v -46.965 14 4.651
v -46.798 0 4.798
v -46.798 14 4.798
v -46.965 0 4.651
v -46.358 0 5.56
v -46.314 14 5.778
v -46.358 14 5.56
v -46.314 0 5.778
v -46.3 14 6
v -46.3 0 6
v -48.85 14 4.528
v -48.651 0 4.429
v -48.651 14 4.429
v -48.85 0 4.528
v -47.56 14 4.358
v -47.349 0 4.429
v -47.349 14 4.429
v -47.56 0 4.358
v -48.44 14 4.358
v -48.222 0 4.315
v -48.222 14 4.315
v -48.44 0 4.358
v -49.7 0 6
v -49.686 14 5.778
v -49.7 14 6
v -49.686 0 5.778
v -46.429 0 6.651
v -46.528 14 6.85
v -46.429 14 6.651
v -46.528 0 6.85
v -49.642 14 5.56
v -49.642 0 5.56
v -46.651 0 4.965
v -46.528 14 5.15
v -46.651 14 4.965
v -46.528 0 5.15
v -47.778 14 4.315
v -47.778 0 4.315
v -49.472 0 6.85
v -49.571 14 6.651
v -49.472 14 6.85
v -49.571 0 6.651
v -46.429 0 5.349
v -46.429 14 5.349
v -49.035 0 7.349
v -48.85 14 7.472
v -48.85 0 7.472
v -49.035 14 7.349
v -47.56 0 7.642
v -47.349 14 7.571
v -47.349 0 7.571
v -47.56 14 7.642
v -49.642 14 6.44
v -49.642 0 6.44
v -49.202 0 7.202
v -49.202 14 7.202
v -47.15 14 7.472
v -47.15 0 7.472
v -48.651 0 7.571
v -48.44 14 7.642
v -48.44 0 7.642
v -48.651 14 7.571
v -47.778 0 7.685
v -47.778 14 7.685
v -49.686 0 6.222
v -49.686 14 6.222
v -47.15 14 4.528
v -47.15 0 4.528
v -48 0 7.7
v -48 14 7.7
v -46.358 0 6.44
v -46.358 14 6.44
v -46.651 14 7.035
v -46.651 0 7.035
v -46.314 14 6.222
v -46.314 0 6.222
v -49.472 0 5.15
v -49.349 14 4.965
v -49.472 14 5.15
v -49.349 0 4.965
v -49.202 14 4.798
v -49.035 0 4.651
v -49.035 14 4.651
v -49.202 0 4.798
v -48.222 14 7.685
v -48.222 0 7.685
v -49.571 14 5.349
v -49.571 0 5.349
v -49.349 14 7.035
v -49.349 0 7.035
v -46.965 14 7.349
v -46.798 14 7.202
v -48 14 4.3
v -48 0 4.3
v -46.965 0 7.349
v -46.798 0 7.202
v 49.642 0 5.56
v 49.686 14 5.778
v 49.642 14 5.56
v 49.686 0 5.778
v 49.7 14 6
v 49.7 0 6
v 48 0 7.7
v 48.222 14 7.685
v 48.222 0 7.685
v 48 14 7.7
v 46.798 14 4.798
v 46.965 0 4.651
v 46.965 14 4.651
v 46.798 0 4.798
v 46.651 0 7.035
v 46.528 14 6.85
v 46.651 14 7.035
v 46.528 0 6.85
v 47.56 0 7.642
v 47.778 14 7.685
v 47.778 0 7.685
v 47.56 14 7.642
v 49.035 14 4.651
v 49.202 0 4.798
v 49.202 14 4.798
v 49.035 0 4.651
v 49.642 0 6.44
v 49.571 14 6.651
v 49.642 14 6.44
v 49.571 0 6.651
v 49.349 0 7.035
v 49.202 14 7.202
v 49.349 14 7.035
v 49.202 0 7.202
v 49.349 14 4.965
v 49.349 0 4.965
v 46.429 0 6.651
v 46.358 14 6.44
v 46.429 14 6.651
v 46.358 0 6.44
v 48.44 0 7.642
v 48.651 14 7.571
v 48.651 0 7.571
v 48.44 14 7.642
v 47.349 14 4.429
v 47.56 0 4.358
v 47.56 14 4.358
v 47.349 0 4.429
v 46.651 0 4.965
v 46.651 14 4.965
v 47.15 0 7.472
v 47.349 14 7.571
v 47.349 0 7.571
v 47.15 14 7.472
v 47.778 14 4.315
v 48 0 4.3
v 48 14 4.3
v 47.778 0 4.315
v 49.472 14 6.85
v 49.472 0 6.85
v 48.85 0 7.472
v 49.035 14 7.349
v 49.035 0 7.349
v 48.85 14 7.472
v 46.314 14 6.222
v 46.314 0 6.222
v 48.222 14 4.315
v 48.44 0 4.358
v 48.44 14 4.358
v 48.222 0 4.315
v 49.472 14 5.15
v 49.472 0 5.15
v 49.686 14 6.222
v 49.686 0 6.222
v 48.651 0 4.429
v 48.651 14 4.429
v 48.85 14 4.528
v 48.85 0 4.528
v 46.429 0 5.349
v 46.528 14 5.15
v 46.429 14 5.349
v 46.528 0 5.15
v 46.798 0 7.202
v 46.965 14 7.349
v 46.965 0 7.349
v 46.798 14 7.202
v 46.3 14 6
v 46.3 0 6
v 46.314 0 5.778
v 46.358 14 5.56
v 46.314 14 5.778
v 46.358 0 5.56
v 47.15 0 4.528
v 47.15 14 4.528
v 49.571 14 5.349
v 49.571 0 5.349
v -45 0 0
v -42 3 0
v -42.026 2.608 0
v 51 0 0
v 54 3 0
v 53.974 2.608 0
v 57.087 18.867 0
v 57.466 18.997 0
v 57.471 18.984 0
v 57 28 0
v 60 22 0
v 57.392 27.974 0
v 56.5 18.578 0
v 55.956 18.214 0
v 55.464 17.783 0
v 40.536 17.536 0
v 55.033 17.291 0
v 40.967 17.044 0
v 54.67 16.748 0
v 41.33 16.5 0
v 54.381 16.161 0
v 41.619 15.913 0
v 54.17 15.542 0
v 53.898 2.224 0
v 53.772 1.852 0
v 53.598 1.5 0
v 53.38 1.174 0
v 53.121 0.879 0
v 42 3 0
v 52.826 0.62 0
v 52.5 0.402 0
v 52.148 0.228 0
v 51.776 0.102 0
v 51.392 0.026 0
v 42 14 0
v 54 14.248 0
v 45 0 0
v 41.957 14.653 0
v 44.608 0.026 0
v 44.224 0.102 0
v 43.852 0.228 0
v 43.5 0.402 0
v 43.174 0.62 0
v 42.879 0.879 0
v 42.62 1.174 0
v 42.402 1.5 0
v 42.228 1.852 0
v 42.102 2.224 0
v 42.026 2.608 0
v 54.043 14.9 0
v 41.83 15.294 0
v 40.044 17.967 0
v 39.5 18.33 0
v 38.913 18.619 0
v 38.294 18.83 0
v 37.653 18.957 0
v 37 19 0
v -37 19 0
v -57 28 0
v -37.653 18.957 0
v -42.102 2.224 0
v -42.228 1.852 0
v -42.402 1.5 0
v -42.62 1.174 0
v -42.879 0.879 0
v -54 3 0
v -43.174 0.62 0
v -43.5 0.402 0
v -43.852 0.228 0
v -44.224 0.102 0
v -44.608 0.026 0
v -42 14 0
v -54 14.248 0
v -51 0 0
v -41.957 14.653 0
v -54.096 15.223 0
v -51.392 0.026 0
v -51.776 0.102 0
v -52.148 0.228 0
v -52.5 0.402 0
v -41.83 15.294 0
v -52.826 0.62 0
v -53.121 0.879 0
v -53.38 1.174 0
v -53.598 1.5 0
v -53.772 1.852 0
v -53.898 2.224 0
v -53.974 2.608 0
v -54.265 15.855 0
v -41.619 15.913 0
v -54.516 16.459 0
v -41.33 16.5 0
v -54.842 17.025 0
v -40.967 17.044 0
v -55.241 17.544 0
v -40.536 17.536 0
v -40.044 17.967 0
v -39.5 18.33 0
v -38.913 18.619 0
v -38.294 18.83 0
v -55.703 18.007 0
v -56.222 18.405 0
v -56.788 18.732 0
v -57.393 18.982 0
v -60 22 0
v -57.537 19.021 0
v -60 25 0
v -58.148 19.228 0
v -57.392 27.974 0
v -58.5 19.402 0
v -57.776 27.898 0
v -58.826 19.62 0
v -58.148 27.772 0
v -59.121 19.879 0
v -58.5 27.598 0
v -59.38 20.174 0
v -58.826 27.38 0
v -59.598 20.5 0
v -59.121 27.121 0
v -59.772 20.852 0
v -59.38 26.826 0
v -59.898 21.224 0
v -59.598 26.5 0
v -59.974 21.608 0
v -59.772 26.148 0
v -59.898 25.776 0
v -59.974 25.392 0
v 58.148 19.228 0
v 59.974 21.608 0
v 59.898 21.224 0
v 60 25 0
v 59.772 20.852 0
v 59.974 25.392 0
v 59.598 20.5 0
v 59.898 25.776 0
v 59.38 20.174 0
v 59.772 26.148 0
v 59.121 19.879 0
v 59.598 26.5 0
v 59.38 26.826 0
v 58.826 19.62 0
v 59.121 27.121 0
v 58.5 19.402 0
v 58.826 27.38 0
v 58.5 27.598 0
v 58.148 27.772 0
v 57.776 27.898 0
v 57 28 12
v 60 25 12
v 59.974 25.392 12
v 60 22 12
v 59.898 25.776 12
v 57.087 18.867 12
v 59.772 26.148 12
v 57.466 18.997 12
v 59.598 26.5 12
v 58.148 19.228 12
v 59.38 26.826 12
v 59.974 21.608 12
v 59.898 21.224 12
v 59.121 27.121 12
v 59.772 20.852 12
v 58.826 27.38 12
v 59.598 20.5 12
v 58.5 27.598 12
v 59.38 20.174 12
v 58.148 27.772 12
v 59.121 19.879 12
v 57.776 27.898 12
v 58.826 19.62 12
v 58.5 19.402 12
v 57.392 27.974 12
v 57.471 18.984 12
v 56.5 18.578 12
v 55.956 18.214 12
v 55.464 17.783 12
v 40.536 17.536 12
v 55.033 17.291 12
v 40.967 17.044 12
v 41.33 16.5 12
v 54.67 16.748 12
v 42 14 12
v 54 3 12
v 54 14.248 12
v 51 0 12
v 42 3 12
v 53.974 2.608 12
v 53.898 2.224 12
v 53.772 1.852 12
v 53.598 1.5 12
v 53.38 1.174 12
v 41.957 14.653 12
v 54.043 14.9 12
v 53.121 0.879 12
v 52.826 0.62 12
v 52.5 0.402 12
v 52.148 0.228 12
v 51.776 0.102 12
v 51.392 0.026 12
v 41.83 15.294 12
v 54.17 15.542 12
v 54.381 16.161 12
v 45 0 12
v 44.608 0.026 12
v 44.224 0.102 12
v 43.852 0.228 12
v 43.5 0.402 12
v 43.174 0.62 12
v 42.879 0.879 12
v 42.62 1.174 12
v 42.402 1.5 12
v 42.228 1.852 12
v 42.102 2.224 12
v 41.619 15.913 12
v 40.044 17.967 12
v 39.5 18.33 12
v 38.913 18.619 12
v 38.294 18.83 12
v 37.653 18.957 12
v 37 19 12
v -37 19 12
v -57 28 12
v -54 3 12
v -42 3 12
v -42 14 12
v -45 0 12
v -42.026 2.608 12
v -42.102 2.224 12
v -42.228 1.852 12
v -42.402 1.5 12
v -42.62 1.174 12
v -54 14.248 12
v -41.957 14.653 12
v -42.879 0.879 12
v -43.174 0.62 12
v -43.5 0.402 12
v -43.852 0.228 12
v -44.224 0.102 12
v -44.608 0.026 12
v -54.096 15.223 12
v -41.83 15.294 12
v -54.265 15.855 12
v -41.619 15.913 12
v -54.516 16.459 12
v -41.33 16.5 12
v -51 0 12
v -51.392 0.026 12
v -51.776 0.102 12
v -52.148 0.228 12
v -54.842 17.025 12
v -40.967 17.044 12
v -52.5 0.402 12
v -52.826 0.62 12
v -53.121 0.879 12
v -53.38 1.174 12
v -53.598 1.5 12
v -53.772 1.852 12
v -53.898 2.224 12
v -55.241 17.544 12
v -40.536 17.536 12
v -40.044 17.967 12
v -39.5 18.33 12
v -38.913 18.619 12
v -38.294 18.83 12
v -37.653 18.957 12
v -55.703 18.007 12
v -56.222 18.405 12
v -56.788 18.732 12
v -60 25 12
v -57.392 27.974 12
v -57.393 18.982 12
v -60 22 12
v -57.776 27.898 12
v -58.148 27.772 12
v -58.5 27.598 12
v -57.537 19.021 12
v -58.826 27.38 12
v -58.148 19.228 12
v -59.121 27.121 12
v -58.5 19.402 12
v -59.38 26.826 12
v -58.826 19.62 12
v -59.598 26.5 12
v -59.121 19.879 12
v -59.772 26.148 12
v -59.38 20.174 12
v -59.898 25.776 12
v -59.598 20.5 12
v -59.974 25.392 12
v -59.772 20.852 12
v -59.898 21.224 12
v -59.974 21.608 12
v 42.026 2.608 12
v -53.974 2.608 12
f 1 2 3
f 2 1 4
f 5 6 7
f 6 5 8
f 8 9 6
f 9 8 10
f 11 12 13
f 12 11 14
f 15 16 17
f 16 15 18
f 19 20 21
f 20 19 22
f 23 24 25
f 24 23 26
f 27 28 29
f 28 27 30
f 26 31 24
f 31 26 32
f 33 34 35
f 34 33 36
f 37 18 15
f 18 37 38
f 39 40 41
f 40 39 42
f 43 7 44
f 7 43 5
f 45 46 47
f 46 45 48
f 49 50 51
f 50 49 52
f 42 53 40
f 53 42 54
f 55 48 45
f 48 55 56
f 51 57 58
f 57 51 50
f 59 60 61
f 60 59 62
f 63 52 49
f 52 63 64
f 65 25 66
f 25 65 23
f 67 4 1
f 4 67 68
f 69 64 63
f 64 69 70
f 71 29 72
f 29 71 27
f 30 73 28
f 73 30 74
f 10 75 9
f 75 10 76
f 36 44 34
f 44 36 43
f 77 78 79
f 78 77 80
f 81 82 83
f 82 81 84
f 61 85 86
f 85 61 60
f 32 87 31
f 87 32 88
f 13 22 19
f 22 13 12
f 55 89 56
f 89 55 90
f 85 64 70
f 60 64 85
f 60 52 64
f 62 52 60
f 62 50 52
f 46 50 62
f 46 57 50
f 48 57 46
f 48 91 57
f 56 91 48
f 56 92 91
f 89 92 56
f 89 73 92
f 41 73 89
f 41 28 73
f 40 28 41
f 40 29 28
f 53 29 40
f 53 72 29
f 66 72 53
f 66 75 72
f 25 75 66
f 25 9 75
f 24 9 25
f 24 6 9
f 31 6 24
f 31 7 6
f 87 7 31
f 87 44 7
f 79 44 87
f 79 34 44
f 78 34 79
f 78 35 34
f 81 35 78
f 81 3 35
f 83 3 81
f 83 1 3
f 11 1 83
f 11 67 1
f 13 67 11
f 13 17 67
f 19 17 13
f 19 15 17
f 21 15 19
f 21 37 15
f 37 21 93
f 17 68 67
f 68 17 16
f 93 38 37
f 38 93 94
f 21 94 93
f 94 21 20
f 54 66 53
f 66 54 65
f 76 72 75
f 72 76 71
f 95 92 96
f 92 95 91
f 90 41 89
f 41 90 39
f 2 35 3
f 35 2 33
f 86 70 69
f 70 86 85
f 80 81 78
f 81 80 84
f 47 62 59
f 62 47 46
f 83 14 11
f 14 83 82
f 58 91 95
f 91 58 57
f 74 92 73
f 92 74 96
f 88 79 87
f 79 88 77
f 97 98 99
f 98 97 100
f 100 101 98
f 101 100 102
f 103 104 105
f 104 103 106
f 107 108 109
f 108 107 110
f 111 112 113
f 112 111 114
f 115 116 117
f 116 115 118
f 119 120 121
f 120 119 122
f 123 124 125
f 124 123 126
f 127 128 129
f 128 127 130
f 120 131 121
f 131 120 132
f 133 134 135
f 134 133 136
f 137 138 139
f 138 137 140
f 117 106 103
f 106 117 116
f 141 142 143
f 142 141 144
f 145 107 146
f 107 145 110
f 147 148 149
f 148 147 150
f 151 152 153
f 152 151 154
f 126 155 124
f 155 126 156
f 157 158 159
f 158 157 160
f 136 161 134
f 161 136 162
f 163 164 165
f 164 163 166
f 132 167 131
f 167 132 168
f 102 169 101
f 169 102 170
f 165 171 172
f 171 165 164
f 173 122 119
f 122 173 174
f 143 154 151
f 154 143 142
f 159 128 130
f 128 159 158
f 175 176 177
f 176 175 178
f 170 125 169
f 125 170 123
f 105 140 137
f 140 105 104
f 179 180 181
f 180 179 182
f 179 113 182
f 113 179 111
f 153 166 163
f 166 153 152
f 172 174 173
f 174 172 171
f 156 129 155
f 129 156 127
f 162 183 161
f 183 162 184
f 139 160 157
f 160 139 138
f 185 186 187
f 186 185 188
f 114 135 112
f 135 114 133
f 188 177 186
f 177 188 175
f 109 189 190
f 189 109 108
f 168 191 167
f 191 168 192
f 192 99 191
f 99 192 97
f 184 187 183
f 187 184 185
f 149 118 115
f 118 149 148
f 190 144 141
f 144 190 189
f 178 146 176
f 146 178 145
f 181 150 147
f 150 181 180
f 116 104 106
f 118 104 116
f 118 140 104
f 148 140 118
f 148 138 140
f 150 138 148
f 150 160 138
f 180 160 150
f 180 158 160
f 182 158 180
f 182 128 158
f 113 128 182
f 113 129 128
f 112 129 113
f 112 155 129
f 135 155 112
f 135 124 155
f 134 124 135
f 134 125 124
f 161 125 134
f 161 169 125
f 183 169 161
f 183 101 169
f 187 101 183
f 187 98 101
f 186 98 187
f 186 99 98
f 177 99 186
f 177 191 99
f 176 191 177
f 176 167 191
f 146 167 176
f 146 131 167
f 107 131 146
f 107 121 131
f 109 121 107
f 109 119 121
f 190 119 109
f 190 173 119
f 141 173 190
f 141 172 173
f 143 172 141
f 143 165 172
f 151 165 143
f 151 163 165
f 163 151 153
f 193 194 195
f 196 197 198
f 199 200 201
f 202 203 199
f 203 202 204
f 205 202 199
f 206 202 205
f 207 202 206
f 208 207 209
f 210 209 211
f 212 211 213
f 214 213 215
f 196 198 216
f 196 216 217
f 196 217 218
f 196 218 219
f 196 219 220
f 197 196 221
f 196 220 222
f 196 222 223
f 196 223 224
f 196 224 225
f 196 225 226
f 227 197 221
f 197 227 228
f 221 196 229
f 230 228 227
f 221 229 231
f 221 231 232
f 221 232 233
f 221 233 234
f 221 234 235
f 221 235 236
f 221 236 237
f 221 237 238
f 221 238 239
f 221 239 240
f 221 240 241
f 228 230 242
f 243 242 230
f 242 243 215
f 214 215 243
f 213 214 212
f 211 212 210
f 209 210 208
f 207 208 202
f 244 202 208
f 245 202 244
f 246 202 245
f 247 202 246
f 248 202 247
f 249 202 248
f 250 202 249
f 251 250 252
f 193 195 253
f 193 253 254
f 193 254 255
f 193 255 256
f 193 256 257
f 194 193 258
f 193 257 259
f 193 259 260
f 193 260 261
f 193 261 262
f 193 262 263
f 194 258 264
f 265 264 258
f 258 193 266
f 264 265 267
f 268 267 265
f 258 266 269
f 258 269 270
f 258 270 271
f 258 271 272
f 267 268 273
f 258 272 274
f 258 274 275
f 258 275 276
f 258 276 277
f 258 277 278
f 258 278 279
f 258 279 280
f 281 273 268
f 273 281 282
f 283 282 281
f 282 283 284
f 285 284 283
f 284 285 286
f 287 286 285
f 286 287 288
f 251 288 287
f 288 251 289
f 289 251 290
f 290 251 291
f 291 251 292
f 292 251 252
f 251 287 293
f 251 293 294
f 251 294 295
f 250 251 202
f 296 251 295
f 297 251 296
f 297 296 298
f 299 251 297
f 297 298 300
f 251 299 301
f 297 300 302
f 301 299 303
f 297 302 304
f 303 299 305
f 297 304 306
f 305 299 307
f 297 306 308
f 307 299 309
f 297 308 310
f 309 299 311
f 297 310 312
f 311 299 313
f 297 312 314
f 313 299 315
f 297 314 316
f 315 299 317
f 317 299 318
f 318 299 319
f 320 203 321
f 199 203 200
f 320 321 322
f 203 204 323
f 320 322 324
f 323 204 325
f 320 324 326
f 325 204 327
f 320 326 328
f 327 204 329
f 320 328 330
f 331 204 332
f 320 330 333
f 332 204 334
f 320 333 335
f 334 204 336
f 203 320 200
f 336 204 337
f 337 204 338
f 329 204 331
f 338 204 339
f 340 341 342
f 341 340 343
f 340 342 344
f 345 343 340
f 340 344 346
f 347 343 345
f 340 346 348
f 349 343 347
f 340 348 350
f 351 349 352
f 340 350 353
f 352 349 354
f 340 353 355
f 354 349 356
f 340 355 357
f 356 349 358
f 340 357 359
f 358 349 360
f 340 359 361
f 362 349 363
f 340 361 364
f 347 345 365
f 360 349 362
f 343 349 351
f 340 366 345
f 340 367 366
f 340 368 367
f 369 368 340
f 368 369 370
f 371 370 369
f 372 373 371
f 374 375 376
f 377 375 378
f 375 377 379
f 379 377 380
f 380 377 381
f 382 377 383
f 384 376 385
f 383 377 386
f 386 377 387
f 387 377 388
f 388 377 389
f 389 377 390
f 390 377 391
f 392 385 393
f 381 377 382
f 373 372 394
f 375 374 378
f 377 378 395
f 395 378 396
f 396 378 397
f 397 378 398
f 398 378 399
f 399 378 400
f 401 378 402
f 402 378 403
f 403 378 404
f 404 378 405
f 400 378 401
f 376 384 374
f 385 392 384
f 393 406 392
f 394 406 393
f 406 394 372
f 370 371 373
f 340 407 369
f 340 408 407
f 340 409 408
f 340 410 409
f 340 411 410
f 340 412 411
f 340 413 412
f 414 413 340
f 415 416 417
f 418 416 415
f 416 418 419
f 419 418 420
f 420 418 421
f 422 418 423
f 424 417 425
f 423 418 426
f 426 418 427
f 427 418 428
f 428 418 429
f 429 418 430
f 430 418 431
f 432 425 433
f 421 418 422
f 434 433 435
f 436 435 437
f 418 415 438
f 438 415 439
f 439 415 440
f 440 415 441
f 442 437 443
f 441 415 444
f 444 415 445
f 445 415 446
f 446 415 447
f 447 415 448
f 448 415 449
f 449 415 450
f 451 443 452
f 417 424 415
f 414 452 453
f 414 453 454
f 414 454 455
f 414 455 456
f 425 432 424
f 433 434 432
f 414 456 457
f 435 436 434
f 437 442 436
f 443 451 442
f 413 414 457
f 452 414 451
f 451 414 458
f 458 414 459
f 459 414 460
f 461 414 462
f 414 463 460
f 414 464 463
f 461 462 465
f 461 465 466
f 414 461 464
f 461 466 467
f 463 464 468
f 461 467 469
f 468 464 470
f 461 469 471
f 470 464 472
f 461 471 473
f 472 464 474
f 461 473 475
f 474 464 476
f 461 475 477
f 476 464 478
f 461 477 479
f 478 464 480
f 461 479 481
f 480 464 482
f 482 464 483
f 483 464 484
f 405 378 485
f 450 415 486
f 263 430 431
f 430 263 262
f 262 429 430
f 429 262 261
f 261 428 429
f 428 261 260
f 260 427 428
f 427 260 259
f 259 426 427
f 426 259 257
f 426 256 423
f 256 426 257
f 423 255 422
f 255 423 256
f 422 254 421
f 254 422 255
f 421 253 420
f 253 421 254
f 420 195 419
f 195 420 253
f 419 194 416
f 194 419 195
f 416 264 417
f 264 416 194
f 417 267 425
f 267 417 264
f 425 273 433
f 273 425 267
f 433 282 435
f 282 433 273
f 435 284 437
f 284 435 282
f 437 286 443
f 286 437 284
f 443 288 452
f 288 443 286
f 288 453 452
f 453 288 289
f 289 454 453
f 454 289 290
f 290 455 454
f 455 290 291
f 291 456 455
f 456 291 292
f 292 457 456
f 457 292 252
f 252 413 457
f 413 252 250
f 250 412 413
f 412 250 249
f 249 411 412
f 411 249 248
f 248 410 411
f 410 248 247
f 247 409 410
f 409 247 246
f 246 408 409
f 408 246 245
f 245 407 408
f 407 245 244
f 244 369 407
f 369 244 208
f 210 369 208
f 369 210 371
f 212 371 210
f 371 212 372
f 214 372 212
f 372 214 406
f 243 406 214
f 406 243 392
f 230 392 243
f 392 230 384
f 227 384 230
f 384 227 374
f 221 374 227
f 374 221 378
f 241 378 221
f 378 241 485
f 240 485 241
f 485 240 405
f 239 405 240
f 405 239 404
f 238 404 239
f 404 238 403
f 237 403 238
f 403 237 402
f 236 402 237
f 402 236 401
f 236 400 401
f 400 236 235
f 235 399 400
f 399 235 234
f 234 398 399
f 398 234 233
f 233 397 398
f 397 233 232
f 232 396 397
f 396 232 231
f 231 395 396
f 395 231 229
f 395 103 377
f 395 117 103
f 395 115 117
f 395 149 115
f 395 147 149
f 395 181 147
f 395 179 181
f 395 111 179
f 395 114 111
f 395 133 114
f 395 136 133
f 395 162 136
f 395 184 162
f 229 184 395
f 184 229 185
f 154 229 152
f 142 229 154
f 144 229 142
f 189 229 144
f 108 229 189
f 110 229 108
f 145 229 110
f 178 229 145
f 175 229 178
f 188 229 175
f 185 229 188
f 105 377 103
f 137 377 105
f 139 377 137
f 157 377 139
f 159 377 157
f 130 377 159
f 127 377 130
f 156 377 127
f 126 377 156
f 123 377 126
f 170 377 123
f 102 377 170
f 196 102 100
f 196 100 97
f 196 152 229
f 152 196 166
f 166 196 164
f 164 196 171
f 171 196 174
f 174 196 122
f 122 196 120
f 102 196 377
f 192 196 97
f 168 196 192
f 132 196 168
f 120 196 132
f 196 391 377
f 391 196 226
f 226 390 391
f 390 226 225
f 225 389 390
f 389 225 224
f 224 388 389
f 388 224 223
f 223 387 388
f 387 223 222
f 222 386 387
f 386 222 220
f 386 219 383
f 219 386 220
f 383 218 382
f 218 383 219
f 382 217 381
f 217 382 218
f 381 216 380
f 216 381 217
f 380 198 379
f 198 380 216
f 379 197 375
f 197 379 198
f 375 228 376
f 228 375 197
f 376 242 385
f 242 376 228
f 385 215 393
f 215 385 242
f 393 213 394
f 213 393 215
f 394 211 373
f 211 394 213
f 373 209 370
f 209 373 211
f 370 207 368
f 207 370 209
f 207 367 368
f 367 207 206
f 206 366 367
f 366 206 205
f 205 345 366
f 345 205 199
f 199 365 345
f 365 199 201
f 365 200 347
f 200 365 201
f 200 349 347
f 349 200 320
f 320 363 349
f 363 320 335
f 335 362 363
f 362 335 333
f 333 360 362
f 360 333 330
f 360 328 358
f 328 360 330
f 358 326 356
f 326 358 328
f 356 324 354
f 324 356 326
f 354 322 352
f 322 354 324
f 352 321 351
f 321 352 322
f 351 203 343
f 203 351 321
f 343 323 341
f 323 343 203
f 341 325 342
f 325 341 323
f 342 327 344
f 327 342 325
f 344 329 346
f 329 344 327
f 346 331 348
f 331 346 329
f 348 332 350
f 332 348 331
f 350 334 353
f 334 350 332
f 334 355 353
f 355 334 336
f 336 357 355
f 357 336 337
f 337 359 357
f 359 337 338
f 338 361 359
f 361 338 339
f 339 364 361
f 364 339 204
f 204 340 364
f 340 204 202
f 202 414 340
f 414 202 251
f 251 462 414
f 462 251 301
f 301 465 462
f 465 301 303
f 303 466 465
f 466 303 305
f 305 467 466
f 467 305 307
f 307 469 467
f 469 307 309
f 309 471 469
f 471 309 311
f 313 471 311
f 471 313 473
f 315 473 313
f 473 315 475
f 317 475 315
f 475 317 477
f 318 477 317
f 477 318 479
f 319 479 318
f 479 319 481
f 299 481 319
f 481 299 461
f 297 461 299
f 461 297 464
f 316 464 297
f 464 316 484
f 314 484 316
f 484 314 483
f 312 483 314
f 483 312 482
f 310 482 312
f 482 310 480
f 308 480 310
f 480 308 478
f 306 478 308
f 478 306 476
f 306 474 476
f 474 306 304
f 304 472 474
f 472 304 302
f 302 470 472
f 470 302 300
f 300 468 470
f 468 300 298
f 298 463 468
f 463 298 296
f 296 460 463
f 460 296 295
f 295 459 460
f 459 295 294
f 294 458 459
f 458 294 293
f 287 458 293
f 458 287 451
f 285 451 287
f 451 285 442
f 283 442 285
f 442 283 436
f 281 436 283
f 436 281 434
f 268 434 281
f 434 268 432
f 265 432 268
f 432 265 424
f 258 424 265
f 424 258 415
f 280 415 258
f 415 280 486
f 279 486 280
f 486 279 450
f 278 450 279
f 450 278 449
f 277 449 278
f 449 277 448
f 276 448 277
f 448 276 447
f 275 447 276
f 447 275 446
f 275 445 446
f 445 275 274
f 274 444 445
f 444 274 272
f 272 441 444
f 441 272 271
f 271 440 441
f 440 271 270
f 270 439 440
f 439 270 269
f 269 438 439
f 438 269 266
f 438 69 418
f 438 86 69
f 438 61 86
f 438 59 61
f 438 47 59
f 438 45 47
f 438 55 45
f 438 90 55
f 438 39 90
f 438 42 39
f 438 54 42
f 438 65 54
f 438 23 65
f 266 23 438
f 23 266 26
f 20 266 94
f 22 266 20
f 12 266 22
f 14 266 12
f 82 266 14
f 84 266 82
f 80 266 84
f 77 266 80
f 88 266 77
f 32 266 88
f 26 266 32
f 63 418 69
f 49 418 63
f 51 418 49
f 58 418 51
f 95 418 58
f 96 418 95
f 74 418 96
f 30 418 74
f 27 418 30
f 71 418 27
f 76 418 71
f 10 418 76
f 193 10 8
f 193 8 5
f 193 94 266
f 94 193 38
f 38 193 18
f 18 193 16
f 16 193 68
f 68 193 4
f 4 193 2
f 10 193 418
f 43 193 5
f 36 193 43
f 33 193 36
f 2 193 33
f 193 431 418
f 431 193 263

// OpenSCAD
// Drawer / Cabinet Pull Handle — replace a broken or ugly handle.
// Measure the distance between the existing screw holes (centre to centre).
// Standard spacings: 64, 76, 96, 128, 160 mm.
// Prints on its side (as rendered) so the bar is strong, no supports.
// Fix with M4 machine screws (they self-tap into the 3.4 mm holes) or
// melt in M4 heat-set inserts (set hole_d to the insert size, ~5.6).

/* [Handle] */
// Screw hole spacing, centre to centre (mm)
spacing = 96;           // [32:1:320]
// Overhang past each screw (mm)
overhang = 12;          // [0:1:40]
// How far the handle stands off the drawer (mm)
standoff = 28;          // [15:1:50]
// Bar thickness, front to back (mm)
bar_t = 9;              // [6:0.5:15]
// Handle width (mm) — this is the print height
width = 12;             // [8:1:25]

/* [Screws] */
// Screw hole diameter (mm)
hole_d = 3.4;           // [2.5:0.1:6]
// Screw hole depth (mm)
hole_depth = 14;        // [6:1:25]

/* [Hidden] */
$fn = 48;
post_w = 12;
L = spacing + 2 * overhang;

module profile() {
    offset(r = -5) offset(delta = 5)
    offset(r = 3) offset(delta = -3) {
        translate([-L / 2, standoff - bar_t]) square([L, bar_t]);
        for (s = [-1, 1])
            translate([s * spacing / 2 - post_w / 2, 0]) square([post_w, standoff]);
    }
}

difference() {
    linear_extrude(width) profile();
    for (s = [-1, 1])
        translate([s * spacing / 2, -1, width / 2]) rotate([-90, 0, 0])
            cylinder(d = hole_d, h = hole_depth + 1);
}
